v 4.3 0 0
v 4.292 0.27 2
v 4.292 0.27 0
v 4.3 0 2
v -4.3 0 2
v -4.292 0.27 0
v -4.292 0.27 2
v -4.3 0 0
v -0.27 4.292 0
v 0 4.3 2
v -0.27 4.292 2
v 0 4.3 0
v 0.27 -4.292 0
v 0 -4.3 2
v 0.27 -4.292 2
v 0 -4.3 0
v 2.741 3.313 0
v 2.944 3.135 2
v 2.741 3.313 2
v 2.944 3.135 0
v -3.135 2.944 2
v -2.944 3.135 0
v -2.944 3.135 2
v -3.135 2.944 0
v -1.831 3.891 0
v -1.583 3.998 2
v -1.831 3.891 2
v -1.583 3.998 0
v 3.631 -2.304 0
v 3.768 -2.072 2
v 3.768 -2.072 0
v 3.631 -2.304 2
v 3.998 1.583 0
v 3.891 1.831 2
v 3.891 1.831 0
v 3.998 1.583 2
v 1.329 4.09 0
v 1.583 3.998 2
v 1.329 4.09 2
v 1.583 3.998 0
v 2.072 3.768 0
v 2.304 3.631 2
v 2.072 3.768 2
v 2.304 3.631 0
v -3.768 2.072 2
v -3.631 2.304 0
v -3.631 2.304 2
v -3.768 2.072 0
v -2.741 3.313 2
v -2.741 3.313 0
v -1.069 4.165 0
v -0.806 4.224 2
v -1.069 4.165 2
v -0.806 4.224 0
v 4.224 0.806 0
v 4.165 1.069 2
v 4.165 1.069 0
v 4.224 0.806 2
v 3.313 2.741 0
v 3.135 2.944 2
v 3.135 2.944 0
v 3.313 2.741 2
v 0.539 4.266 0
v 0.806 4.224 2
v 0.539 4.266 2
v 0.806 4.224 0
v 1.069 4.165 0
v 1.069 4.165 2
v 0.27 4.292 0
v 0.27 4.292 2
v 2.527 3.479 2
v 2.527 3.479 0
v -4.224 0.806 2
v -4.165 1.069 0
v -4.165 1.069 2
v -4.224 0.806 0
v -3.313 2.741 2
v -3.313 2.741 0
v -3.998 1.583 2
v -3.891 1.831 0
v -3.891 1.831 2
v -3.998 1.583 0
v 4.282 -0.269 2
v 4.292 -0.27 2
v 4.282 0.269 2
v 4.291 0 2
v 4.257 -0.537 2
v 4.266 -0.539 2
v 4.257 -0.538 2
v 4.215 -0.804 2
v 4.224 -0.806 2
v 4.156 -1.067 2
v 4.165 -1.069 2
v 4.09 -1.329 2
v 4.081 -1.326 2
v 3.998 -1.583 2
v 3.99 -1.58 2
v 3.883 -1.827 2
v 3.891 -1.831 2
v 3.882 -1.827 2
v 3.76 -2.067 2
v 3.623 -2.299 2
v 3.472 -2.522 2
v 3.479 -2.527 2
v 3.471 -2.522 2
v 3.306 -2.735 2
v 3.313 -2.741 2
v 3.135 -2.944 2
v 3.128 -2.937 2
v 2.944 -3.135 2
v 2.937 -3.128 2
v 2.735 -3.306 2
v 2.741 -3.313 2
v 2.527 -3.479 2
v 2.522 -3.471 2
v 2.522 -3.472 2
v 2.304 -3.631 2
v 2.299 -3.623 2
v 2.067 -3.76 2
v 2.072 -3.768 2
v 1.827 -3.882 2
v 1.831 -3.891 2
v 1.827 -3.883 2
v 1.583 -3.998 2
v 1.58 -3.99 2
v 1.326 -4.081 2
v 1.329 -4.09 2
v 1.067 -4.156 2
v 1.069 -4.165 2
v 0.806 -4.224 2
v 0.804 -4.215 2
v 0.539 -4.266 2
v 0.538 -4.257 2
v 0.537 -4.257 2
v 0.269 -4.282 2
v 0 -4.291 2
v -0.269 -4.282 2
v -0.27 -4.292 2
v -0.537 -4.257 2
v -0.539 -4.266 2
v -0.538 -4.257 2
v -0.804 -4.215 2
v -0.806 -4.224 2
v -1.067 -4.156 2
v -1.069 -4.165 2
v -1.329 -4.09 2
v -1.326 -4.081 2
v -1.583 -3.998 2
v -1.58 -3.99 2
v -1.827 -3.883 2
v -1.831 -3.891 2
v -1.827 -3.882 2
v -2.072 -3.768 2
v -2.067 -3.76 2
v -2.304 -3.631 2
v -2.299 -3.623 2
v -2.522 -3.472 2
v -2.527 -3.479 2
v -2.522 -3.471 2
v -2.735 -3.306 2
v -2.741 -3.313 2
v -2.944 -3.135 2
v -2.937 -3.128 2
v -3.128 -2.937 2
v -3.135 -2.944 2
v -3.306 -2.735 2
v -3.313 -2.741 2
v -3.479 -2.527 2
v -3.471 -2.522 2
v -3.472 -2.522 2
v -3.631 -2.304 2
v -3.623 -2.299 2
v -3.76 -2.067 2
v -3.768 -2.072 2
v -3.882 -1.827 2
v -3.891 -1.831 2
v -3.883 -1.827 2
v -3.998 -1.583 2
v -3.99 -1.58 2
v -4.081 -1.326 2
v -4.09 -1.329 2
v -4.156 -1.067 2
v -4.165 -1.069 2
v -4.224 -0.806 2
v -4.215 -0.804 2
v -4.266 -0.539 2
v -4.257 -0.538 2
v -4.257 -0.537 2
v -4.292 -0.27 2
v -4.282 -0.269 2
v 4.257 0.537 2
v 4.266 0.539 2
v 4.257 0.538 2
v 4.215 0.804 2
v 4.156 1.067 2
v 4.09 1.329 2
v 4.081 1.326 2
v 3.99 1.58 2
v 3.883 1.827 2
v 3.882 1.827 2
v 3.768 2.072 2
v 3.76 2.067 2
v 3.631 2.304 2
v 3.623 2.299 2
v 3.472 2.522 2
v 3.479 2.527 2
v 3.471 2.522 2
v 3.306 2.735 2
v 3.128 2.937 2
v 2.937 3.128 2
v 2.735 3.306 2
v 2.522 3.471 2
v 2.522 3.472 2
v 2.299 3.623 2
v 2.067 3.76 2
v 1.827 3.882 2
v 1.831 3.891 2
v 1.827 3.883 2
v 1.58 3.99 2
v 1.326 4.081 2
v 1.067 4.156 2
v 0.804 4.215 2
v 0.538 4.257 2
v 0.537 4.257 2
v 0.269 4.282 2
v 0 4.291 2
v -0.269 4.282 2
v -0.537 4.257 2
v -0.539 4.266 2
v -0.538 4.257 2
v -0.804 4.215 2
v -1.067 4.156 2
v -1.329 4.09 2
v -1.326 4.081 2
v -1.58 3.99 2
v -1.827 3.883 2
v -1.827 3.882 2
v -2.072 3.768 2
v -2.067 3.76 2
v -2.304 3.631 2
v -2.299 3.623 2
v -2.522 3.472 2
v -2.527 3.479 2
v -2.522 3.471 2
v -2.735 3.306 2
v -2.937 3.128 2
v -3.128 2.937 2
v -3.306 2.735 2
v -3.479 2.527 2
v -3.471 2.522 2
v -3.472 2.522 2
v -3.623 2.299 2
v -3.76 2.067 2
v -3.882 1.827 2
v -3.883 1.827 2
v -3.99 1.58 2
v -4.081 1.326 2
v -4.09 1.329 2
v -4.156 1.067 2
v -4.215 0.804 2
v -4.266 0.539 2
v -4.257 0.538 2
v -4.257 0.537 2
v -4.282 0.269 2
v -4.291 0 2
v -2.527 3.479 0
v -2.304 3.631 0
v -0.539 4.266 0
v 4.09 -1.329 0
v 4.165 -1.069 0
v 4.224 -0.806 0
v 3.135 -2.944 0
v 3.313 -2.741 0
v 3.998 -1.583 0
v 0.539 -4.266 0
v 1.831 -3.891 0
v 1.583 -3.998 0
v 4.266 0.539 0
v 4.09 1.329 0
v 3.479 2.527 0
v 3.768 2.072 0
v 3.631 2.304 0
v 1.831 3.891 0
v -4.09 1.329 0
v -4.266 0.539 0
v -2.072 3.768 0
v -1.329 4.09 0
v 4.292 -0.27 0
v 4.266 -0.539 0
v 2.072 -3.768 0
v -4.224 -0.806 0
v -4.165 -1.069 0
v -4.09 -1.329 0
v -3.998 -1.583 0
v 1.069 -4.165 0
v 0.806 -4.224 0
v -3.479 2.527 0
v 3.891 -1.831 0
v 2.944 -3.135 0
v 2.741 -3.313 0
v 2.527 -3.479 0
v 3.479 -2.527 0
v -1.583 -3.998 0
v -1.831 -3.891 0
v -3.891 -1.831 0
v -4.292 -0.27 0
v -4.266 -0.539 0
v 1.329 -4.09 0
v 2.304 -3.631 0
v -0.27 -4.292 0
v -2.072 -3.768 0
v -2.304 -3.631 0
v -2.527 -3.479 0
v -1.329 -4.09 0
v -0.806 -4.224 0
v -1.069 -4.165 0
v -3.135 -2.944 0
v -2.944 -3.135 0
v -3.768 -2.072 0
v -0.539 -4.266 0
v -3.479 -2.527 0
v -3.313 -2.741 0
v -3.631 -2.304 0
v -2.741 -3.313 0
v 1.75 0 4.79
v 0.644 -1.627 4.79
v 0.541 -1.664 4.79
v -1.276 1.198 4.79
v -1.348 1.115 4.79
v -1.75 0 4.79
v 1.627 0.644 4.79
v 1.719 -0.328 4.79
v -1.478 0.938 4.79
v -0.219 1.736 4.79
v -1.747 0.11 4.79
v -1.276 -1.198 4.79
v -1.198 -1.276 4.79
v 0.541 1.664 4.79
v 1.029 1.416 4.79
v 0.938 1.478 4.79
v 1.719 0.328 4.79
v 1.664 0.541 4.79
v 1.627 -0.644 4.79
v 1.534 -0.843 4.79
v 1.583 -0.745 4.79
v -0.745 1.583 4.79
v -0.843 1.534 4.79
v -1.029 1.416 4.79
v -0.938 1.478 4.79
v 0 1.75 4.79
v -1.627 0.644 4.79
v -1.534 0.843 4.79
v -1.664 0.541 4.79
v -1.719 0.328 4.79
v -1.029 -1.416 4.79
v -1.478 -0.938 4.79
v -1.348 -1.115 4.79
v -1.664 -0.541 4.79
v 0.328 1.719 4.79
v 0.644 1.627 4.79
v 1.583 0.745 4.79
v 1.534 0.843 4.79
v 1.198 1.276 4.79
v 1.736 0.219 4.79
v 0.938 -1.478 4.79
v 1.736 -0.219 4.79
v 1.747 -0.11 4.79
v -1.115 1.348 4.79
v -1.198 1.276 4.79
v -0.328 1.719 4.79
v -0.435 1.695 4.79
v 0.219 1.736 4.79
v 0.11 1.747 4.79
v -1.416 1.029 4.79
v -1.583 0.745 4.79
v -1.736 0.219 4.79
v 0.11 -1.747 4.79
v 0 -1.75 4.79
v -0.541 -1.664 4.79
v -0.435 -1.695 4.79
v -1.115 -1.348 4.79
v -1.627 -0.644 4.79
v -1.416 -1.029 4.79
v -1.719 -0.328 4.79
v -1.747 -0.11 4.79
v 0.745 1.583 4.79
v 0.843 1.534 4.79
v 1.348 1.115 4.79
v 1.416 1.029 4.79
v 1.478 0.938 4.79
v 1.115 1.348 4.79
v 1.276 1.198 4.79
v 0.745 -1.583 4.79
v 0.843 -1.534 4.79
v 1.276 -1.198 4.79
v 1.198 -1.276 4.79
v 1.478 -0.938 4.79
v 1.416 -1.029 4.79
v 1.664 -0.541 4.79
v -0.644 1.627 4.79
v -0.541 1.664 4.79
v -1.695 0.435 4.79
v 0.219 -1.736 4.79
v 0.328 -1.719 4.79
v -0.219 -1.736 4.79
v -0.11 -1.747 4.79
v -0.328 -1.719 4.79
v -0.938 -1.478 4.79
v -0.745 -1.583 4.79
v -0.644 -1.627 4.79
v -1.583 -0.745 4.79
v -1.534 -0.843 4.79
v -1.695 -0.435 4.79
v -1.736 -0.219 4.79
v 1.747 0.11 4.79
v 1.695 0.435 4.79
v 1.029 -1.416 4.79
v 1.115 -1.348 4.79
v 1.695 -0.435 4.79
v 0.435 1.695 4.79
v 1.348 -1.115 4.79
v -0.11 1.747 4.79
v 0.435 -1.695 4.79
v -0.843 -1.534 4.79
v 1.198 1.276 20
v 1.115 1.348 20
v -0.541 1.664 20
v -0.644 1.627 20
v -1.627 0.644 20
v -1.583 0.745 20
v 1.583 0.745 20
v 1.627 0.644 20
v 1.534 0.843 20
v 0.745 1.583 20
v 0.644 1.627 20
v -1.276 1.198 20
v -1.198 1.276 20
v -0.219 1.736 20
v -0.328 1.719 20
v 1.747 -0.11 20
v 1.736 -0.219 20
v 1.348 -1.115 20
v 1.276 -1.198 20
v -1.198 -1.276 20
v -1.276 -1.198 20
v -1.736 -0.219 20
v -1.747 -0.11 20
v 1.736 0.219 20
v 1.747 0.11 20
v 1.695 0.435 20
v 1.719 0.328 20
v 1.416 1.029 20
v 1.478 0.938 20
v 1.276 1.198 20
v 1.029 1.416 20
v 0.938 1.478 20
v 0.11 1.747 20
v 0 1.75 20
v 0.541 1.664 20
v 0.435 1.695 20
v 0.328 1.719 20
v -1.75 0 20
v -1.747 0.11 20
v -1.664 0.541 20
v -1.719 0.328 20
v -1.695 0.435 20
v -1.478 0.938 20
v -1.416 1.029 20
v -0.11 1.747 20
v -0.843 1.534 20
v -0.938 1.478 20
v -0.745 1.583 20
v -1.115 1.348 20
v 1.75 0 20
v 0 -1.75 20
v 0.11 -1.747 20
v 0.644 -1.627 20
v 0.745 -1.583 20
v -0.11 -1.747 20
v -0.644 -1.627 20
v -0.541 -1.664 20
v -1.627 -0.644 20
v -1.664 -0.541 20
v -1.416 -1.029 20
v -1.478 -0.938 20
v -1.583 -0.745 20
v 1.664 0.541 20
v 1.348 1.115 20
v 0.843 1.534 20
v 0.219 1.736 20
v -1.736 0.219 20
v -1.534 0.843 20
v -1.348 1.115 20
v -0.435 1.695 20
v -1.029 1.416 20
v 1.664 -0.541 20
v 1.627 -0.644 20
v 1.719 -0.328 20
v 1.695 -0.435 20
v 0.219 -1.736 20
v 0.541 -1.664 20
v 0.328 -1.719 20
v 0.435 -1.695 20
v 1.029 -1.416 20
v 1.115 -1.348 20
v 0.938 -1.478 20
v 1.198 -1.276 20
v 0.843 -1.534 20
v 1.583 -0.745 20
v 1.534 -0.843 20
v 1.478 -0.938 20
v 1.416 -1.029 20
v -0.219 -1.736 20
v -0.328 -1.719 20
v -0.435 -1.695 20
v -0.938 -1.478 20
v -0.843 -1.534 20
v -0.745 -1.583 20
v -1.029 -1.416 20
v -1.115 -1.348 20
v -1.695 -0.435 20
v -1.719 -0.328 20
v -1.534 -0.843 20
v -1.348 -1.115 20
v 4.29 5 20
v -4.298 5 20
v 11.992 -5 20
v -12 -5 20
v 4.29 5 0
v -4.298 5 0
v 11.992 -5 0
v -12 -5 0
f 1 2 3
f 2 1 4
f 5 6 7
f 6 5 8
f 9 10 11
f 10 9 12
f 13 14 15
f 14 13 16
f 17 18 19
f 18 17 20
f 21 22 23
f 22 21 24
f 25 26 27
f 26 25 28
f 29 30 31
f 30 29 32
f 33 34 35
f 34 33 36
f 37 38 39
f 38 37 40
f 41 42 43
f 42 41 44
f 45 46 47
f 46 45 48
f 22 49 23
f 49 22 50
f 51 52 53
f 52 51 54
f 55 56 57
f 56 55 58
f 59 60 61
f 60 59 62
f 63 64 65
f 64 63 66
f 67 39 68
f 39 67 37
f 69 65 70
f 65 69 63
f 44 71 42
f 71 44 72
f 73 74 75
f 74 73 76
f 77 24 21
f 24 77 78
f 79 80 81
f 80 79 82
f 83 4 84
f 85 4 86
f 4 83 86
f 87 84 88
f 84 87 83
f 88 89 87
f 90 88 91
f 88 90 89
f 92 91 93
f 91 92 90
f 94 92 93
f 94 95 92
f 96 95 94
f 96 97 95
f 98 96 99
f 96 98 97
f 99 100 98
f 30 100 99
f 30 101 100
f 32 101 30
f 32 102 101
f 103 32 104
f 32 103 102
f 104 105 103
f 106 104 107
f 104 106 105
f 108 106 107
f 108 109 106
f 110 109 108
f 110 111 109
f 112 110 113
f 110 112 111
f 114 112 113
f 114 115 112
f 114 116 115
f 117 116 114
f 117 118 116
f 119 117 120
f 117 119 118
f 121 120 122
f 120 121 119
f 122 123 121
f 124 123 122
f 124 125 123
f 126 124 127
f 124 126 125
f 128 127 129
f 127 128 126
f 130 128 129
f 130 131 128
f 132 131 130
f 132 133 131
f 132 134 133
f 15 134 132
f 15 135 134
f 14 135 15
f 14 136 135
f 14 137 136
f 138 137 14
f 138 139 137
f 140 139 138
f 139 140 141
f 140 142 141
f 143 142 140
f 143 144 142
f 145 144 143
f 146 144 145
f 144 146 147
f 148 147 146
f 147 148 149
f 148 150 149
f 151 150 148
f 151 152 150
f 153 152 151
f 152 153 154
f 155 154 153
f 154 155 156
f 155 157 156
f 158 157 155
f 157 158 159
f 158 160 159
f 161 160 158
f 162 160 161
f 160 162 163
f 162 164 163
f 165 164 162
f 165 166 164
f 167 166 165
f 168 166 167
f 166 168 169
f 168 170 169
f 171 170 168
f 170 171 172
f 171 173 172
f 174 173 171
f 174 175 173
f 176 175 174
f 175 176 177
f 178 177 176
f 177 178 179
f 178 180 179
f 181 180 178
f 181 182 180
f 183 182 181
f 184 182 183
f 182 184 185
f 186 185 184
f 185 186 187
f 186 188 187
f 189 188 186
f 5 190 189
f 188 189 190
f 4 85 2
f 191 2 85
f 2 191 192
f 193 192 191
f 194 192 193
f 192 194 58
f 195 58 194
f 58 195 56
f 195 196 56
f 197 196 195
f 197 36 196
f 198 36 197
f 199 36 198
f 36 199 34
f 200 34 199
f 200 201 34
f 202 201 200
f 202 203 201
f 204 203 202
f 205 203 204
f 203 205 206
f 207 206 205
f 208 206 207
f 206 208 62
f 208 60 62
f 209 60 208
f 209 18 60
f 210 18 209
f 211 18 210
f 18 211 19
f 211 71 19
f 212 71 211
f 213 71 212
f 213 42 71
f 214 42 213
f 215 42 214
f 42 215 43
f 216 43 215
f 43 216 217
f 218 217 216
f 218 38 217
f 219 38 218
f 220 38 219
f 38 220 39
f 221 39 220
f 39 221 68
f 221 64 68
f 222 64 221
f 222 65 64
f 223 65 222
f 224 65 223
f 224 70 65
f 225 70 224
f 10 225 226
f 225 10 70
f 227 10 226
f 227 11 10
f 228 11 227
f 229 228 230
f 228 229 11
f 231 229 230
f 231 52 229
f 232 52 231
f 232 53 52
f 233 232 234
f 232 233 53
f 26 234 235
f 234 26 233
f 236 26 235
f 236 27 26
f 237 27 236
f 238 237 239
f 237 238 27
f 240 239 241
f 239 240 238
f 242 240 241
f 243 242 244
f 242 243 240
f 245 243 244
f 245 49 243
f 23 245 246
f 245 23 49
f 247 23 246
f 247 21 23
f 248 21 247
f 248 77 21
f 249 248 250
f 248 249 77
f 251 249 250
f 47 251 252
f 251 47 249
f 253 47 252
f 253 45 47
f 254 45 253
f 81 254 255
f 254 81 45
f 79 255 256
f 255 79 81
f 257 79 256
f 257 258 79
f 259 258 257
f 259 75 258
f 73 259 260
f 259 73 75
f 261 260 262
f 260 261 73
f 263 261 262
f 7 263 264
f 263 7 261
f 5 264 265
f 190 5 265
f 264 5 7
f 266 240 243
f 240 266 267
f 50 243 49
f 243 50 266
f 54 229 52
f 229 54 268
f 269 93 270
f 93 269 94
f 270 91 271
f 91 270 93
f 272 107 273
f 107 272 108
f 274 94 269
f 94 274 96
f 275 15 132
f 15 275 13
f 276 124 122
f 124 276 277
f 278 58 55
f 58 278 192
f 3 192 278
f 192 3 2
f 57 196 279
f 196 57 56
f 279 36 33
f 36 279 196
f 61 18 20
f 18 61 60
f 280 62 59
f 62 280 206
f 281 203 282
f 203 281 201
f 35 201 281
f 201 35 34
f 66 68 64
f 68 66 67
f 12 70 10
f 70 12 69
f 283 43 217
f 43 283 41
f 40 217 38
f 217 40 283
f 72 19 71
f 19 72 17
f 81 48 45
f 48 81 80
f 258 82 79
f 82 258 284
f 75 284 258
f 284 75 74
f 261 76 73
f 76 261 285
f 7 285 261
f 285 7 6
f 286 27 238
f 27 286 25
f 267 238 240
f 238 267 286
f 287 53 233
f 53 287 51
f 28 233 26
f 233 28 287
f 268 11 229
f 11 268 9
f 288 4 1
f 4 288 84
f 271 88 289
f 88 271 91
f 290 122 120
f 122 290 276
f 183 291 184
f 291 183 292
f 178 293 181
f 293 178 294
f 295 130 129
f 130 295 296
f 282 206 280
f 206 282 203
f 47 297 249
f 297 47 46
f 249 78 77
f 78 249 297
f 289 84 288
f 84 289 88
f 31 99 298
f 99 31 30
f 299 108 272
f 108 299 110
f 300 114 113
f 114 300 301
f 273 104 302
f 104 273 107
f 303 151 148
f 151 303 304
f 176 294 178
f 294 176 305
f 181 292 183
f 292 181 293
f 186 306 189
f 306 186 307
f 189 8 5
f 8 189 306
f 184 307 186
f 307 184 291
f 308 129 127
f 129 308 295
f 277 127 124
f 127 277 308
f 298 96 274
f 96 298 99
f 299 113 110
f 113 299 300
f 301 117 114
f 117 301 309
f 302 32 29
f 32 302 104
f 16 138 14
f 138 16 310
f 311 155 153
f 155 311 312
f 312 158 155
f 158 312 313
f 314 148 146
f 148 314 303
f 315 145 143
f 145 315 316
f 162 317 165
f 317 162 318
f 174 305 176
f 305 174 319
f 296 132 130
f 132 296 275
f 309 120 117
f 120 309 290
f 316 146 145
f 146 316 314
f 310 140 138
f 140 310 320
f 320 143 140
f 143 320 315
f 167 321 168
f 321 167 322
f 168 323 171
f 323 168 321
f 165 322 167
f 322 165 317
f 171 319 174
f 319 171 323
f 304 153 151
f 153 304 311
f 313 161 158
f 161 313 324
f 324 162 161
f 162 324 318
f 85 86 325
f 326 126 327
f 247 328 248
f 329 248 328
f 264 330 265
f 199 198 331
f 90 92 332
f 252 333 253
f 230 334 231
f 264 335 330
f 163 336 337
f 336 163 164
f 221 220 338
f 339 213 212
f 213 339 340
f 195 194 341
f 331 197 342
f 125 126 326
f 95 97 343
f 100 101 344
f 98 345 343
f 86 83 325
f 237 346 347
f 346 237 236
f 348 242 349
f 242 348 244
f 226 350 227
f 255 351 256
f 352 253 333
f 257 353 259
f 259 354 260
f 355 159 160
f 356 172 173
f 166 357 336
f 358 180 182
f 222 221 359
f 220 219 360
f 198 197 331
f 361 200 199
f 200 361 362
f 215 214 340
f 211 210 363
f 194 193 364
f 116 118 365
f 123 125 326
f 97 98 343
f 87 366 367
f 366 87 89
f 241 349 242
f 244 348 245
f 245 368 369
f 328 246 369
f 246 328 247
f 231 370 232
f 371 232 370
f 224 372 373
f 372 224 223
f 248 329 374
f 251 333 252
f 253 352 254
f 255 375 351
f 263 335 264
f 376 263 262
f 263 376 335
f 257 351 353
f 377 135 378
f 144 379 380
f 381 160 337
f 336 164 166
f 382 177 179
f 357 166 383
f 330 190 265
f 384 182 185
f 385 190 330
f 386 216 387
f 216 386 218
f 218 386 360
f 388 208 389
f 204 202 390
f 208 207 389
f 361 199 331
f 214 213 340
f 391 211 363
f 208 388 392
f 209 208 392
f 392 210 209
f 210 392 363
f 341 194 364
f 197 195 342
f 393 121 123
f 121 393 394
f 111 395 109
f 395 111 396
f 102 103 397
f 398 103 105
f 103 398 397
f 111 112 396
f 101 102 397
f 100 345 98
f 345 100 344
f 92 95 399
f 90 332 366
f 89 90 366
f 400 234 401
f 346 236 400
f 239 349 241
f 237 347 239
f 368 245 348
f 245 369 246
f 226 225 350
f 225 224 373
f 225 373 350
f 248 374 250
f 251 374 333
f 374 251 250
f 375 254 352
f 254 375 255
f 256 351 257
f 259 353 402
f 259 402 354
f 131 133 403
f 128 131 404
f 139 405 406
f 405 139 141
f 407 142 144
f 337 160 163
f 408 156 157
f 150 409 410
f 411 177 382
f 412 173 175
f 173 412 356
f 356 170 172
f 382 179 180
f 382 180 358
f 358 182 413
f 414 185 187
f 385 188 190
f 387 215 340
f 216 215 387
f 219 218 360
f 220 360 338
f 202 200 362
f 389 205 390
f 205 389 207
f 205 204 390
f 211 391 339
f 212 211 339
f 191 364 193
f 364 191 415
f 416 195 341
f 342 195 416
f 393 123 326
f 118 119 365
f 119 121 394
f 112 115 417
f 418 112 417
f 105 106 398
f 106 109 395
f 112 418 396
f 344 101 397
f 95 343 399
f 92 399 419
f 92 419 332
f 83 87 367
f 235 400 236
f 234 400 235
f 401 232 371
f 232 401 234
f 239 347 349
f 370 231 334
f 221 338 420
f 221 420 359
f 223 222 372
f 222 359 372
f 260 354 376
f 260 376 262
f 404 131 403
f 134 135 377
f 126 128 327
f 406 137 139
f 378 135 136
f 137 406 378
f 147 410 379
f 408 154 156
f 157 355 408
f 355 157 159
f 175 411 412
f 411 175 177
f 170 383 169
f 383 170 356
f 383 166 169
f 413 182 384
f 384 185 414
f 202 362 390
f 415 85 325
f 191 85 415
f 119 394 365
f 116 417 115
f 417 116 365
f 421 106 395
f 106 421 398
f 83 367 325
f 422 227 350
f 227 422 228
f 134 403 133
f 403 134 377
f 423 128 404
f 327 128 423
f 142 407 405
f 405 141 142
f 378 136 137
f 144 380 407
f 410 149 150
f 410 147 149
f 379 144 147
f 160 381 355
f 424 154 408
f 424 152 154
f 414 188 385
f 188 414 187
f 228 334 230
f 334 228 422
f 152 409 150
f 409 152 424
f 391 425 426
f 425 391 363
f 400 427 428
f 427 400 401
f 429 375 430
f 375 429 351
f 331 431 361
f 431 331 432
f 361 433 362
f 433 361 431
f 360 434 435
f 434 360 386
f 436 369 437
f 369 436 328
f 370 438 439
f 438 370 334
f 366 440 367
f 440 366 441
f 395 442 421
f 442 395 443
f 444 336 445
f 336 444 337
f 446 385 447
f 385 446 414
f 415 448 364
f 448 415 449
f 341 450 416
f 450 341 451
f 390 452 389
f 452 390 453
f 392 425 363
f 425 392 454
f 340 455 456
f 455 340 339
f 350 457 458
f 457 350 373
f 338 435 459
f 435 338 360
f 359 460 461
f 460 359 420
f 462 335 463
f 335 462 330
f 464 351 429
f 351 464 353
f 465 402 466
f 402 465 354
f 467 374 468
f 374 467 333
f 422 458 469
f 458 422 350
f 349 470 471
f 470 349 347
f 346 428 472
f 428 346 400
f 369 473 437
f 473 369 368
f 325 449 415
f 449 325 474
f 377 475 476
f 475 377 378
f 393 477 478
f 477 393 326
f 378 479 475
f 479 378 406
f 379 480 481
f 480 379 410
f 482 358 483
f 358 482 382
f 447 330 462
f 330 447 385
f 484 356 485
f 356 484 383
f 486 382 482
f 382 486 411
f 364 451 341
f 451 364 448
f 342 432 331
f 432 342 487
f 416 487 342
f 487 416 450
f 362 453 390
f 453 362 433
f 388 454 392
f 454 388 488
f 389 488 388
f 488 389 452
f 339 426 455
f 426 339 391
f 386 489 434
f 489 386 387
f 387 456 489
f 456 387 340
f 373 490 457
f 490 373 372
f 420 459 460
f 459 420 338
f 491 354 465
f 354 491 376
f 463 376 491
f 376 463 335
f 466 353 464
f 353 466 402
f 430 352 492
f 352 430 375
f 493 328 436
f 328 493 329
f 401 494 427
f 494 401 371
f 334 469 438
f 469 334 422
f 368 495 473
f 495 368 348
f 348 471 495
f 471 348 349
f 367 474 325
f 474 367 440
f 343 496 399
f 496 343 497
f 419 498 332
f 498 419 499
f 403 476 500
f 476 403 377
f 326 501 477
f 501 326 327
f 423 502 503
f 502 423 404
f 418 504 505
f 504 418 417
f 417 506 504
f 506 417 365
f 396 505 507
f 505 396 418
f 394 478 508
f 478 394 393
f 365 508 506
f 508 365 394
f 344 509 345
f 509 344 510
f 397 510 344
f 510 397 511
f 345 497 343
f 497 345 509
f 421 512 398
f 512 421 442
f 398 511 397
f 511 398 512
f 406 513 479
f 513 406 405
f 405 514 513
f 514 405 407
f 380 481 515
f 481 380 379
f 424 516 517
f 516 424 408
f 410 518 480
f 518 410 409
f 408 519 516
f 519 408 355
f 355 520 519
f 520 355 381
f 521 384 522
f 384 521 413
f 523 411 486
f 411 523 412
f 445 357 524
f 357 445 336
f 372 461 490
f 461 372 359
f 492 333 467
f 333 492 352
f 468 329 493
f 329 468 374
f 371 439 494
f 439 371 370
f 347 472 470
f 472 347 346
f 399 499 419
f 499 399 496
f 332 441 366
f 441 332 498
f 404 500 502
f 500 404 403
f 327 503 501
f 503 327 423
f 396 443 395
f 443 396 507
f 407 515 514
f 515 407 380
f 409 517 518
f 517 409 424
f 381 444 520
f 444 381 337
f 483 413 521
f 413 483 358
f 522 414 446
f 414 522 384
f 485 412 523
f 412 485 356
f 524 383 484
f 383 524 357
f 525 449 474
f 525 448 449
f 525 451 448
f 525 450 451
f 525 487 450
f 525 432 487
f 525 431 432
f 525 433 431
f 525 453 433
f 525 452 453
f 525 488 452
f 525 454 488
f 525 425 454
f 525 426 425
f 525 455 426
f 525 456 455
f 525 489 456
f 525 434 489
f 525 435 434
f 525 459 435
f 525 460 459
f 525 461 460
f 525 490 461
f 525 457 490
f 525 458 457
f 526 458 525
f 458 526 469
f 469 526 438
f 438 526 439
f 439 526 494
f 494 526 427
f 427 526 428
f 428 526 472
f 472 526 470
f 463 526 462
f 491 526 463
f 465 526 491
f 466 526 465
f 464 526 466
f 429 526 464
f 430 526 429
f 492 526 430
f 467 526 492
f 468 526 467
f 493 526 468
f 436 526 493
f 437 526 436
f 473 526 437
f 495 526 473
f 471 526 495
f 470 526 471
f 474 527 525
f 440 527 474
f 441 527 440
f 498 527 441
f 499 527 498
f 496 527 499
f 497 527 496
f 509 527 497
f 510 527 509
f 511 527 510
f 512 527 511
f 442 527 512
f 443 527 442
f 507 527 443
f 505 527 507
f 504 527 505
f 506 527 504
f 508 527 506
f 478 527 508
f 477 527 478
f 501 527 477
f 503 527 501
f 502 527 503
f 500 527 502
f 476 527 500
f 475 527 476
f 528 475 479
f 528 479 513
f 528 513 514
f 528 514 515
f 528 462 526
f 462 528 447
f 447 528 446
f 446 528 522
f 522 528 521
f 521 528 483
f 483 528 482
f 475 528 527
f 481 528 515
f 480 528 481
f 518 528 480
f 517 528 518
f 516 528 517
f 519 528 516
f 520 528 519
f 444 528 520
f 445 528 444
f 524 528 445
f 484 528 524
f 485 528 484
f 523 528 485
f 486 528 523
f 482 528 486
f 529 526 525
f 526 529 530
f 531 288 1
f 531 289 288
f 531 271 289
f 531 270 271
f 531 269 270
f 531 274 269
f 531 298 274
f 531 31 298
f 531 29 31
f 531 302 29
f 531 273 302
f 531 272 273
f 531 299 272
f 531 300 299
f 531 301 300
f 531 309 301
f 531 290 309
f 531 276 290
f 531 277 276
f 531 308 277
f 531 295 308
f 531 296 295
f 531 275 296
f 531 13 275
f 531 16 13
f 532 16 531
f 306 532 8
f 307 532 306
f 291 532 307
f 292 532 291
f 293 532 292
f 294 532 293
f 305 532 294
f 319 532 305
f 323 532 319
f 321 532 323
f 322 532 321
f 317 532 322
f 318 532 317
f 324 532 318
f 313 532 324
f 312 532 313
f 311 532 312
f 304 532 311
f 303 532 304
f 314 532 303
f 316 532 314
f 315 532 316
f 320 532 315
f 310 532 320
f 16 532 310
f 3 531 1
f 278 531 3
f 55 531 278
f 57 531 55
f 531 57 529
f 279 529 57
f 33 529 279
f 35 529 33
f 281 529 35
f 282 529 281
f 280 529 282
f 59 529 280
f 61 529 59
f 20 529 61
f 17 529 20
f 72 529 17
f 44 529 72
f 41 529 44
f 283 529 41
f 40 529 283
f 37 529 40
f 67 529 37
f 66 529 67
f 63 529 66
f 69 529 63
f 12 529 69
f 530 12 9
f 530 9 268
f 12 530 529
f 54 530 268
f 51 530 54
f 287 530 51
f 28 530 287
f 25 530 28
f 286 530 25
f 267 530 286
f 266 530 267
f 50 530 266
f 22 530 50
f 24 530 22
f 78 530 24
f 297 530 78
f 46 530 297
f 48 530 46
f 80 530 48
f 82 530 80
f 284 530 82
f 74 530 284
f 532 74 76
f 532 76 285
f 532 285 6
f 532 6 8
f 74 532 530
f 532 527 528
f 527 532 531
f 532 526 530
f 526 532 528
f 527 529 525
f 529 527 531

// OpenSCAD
// file: Screws.scad
e=.01;
$fn=100;

function s1_25() = // Drywall 1 1/4" screw
    let(total_len = 32.3)
    let(thread = 21.5)
    let(shank = 8)
    let(d_shank = 3.5)
    let(d_hat = 8.6)
    [total_len, thread, shank, total_len-thread-shank, d_shank-.5, d_shank, d_hat];

function s2() = // Drywall 2" screw
    let(total_len = 51.4)
    let(thread = 33.5)
    let(shank = 13.3)
    let(d_shank = 3.5)
    let(d_hat = 8.6)
    [total_len, thread, shank, total_len-thread-shank, d_shank-.5, d_shank, d_hat];  

function a10x0x2x2x6mm() = // artika lamp 10mm screw
    let(total_len = 10)
    let(shank = 0)
    let(thread = total_len - shank - 2)
    let(d_shank = 3)
    let(d_hat = 6)
    [total_len, thread, shank, total_len-thread-shank, d_shank-.5, d_shank, d_hat];  

module screw(a, p=0.){
    total_len=a[0]; thread=a[1]; shank=a[2]; hat=a[3]; d_thread=a[4]; d_shank=a[5]; d_hat=a[6];
    union(){
        if( p > 0.) {
            translate([0,0,-p+e])
            cylinder(p,d1=d_hat,d2=d_hat);
        }
        cylinder(hat,d1=d_hat,d2=d_shank);
        translate([0,0,hat-e])
        if( p > 0.) {
            cylinder(shank+thread+p, d1=d_shank, d2=d_shank);
        }else{
            union(){
                cylinder(shank, d1=d_shank, d2=d_shank);
                translate([0,0,shank-e])
                cylinder(thread, d1=d_thread, d2=d_thread);
            }
        }
    }
}

//screw(s1_25());
//translate([10,0,0]) screw(s1_25(),5);
//translate([20,0,0]) screw(s2());
//translate([30,0,0]) screw(s2(),5);
// main file
use <Screws.scad>
wing=12;
depth=5;
h=20;
sink=2.;
e=.01;
d_hat = s1_25()[6];
$fn =50;

x = wing-d_hat/2 + e;
y = 2 * depth + e;
diag = sqrt(x*x + y*y);
y_angle = atan(y/x);
echo(x,y,diag, y_angle);
difference(){
    translate([-wing,-depth,0]) 
        cube([2*wing,2*depth,h]);
    translate([0,0,sink-e]) 
        screw(s1_25(),sink+2*e);
    translate([-wing,-depth,-e]) 
        rotate([0,0,y_angle])
           cube([diag,diag/2,h+2*e]);
    translate([wing-x,depth,-e]) 
        rotate([0,0,-y_angle])
           cube([diag,diag/2,h+2*e]);
    
}
